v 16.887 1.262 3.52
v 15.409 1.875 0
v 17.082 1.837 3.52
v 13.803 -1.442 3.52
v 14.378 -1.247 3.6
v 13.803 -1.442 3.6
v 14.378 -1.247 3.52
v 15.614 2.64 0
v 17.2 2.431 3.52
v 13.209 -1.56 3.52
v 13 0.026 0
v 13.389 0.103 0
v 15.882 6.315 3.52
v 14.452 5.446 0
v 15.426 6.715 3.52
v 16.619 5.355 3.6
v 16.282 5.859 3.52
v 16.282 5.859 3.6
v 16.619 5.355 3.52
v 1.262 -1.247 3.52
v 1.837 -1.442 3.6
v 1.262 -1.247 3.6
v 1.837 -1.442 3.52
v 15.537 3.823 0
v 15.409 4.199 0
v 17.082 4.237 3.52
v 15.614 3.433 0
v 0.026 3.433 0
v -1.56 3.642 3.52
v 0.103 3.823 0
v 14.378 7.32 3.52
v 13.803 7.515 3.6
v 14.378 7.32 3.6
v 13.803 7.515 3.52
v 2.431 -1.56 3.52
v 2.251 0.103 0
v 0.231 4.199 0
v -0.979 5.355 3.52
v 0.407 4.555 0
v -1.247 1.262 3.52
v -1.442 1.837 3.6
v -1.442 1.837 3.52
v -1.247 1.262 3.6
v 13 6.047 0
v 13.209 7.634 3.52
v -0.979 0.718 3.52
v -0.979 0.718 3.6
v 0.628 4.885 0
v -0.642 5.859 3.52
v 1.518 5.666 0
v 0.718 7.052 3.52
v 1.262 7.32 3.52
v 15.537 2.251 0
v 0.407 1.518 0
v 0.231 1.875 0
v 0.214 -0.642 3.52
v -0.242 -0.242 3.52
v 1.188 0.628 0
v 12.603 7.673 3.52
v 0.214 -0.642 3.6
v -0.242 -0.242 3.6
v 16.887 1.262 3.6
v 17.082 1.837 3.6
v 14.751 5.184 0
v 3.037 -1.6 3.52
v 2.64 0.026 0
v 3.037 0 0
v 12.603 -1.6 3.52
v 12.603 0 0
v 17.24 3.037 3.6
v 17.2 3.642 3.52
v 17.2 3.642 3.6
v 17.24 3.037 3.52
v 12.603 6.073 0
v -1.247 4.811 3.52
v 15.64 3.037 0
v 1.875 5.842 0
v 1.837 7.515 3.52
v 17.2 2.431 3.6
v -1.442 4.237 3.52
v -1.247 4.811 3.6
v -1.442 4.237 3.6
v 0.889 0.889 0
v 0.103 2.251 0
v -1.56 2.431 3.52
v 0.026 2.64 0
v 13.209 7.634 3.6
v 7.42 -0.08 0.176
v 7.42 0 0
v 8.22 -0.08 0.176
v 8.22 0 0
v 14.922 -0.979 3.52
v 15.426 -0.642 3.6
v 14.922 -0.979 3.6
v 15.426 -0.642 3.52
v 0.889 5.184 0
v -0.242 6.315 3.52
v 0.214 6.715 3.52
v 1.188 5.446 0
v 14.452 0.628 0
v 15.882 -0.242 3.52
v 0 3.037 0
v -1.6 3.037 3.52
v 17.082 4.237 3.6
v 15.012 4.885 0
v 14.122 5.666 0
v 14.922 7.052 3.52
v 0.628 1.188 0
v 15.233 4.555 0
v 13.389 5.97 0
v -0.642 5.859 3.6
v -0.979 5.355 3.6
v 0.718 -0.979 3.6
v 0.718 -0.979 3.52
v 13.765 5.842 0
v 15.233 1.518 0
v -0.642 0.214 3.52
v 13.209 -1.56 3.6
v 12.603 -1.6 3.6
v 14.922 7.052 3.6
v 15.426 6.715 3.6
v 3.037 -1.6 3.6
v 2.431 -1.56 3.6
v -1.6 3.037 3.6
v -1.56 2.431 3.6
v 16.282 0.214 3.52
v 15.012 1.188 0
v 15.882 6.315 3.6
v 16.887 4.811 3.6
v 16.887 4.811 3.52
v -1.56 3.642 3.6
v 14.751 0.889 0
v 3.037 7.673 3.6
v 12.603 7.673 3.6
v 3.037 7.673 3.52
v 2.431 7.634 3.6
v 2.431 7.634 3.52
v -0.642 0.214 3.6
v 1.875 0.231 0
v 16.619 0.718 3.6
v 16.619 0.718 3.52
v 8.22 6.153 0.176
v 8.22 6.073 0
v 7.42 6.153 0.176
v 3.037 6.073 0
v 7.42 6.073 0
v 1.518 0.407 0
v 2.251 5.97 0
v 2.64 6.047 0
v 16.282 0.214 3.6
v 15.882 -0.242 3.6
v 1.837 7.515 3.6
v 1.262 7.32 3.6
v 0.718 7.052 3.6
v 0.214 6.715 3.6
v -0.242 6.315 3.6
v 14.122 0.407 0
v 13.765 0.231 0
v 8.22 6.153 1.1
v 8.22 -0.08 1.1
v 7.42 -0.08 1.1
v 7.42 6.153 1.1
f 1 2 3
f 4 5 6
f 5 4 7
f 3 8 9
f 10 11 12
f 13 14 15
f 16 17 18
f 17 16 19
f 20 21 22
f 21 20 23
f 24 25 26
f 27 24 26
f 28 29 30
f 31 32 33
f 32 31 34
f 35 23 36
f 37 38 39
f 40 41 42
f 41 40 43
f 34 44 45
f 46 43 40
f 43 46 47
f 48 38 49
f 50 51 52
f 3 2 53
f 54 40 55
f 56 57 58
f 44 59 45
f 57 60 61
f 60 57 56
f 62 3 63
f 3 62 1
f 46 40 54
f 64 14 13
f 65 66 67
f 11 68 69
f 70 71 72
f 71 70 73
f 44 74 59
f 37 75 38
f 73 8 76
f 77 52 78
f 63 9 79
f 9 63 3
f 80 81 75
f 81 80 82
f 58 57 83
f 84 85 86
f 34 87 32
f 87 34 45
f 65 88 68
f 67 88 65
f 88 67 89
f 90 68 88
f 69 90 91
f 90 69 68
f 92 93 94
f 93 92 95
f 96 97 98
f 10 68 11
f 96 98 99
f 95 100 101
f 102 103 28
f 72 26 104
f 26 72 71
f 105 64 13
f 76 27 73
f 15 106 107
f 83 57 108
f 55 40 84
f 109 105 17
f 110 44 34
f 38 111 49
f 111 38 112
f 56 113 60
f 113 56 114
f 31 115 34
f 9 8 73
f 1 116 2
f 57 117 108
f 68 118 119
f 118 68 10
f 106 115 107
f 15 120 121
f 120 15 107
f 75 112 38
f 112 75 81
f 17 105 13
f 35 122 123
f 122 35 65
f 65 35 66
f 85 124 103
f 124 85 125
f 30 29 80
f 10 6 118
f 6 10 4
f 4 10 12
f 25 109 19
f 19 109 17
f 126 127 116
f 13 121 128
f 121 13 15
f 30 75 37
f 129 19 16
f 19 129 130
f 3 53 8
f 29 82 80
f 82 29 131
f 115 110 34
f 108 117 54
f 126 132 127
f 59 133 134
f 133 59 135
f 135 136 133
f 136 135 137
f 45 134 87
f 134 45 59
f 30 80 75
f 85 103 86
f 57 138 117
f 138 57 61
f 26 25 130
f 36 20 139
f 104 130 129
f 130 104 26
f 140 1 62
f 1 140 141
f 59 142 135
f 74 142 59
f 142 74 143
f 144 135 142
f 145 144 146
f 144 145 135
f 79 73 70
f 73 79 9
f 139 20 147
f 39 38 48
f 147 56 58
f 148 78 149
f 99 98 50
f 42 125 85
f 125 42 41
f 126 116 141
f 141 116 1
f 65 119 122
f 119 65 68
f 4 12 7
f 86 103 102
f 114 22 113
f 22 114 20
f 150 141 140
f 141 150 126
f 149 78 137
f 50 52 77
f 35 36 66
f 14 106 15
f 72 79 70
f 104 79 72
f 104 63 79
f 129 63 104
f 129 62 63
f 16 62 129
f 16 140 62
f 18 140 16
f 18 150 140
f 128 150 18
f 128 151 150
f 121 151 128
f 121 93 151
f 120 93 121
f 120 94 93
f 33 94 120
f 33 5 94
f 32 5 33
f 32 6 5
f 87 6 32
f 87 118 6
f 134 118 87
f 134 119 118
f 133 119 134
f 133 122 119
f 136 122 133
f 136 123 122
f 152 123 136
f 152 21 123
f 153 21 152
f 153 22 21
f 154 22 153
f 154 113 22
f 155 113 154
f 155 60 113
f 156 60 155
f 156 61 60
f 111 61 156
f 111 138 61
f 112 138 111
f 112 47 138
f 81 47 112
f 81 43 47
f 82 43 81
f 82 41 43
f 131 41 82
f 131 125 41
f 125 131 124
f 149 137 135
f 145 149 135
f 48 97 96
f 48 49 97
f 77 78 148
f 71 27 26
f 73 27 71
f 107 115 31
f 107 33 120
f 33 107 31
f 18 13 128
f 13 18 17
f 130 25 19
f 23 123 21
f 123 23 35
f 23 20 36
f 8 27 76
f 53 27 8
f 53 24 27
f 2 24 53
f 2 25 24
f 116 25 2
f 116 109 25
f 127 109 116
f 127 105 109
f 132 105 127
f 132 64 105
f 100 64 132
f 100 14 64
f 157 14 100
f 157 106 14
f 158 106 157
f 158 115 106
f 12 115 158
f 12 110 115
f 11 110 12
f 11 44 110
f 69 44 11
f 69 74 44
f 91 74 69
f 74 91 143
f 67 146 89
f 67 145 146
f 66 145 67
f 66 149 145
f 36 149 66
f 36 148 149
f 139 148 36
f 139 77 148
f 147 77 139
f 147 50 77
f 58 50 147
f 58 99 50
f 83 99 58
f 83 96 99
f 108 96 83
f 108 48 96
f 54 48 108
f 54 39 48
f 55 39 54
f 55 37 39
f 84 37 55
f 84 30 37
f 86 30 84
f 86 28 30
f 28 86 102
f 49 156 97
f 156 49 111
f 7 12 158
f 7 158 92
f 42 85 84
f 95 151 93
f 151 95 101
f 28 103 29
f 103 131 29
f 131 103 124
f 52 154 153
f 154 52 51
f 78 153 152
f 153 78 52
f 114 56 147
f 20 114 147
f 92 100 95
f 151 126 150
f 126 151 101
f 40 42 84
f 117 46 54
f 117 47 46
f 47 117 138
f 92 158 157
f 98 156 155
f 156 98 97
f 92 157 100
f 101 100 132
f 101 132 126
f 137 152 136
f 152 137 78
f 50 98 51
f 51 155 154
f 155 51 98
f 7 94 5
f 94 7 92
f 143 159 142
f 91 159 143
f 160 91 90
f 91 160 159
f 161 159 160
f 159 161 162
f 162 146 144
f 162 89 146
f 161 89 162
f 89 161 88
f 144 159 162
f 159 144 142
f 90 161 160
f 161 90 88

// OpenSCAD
// file: dims.scad
// =============================================================================
// PLACEHOLDER dimensions — Option 1 replace-face stack
// =============================================================================
// ESTIMATED millimetres from refs/flat/DIMENSIONS.md (170 × 72.3, 2.35:1).
// Callipers are UNKNOWN. Every critical size is a guess until the OEM face
// and cluster bay are measured. This is NOT a verified AP1 drop-in.
//
// Origin (OpenSCAD): bottom-left of the module bounding box, Z toward driver.
// DIMENSIONS.md / pygame use top-left percentages — convert with y_from_top().
// =============================================================================

$fn = 48;
eps = 0.08;

// --- locked flat elevation (ESTIMATED mm from DIMENSIONS.md) ----------------
face_w = 170.0;             // ESTIMATED — TODO measure OEM face width
face_h = 72.3;              // ESTIMATED — 170 / 2.35; TODO measure height
face_aspect = 2.35;         // lock; do not invent a new family

step_w_pct = 0.044;         // rectangular side-notch depth
notch_top_pct = 0.58;       // from module top (OEM lock)
notch_bot_pct = 0.72;
arch_rise_pct = 0.28;       // y% = 28 * u² from the module top
arch_steps = 40;

lcd_inset_x_pct = 0.010;    // extra inset inside the notch
lcd_top_pct = 0.055;
lcd_bottom_pct = 0.76;      // just under TEMP / FUEL
lcd_spring_inset_pct = 0.02;
lcd_frame_mm = 1.0;         // PLACEHOLDER — keeps the mask one piece (see outline)

temp_x_pct = 0.075;
temp_y_pct = 0.72;
fuel_x_pct = 0.745;
fuel_y_pct = 0.72;
bar_w_pct = 0.180;
bar_h_pct = 0.030;

speed_x_pct = 0.50;
speed_y_pct = 0.40;

lamp_y_pct = 0.805;         // hardware-strip centre-line
bezel_h_pct = 0.175;
lamp_w_pct = 0.50;          // PLACEHOLDER — telltale pack not callipered
lamp_h_from_bezel = 0.58;

btn_pad_x_pct = 0.018;
rocker_w_pct = 0.092;
trip_w_pct = 0.062;
btn_h_from_bezel = 0.48;
sel_gap_mm = 1.0;           // PLACEHOLDER (UI uses ~10 px on a 1920 canvas)

tach_slots = 10;            // 0..9 placeholder windows
tach_slot_w = 4.2;          // PLACEHOLDER mm
tach_slot_h = 5.5;          // PLACEHOLDER mm
tach_slot_inset = 3.2;      // PLACEHOLDER — inward from outer arch

// --- stack thicknesses (ALL PLACEHOLDER / TODO measure) ---------------------
face_t = 2.0;               // PLACEHOLDER acrylic / printed mask
tray_h = 12.0;              // PLACEHOLDER overall backlight tray
floor_t = 1.6;              // PLACEHOLDER backscreen floor
diffuser_t = 1.2;           // PLACEHOLDER opal sheet (bought, not printed)
wall = 2.0;                 // PLACEHOLDER tray wall
face_pocket_clear = 0.35;   // PLACEHOLDER slip around dropped-in face
lcd_pocket_clear = 0.40;    // PLACEHOLDER
cable_w = 16.0;             // PLACEHOLDER — FPC / tail location UNKNOWN
cable_h = 4.0;              // PLACEHOLDER

align_pin_d = 2.0;          // PLACEHOLDER — holes only; no printed bosses
align_hole_d = 2.3;         // PLACEHOLDER — do not drill the bay from this
align_pin_h = 2.6;          // PLACEHOLDER — unused until a pin is measured
align_boss_d = 4.4;         // PLACEHOLDER — unused (web/tray stay separate)

button_clear = 0.40;        // PLACEHOLDER hole oversize
button_cap_t = 2.4;         // PLACEHOLDER proud cap
button_flange_t = 1.2;      // PLACEHOLDER retention flange
button_flange_extra = 1.6;  // PLACEHOLDER radial flange beyond cap
button_stem_d = 3.0;        // PLACEHOLDER — switch model UNKNOWN
button_stem_h = 5.0;        // PLACEHOLDER — travel / switch height UNKNOWN
rocker_groove_w = 0.80;
rocker_groove_d = 1.10;

stem_well_d = 6.0;          // PLACEHOLDER switch well in the tray
stem_well_h = 7.0;          // PLACEHOLDER

// --- derived (still ESTIMATED; inherit the TODOs above) ---------------------
step_w = face_w * step_w_pct;
arch_rise = face_h * arch_rise_pct;
spring_y = face_h * (1 - arch_rise_pct);
notch_top_y = face_h * (1 - notch_top_pct);
notch_bot_y = face_h * (1 - notch_bot_pct);

lcd_x = step_w + face_w * lcd_inset_x_pct;
lcd_w = face_w - 2 * step_w - 2 * face_w * lcd_inset_x_pct;
lcd_peak_y = face_h * (1 - lcd_top_pct);
lcd_bot_y = face_h * (1 - lcd_bottom_pct);
lcd_spring_y = face_h * (1 - (arch_rise_pct - lcd_spring_inset_pct));

bezel_h = face_h * bezel_h_pct;
btn_h = bezel_h * btn_h_from_bezel;
btn_y_from_top = face_h * lamp_y_pct + (bezel_h - btn_h) / 2;
btn_y = face_h - btn_y_from_top - btn_h;

rocker_x = face_w * btn_pad_x_pct;
rocker_w = face_w * rocker_w_pct;
trip_w = face_w * trip_w_pct;
trip_x = face_w - face_w * btn_pad_x_pct - trip_w;
sel_x = trip_x - trip_w - sel_gap_mm;

lamp_w = face_w * lamp_w_pct;
lamp_h = bezel_h * lamp_h_from_bezel;
lamp_x = (face_w - lamp_w) / 2;
lamp_y_from_top = face_h * lamp_y_pct - lamp_h / 2;
lamp_y = face_h - lamp_y_from_top - lamp_h;

temp_x = face_w * temp_x_pct;
temp_w = face_w * bar_w_pct;
temp_h = face_h * bar_h_pct;
temp_y = face_h * (1 - temp_y_pct - bar_h_pct);

fuel_x = face_w * fuel_x_pct;
fuel_w = temp_w;
fuel_h = temp_h;
fuel_y = temp_y;

face_rebate_z = tray_h - face_t;
diffuser_z = floor_t;

function y_from_top(pct) = face_h * (1 - pct);

function arch_xy(u, x0, x1, y_peak, y_spring) =
    let (
        t = (u + 1) / 2,
        x = x0 + (x1 - x0) * t,
        y = y_peak - (y_peak - y_spring) * u * u
    )
    [x, y];
// file: outline.scad
// =============================================================================
// 2D OEM silhouette + window helpers (replace-face)
// =============================================================================
// Matches refs/flat/DIMENSIONS.md and src/gauge_ui.py hood_outer_points():
// flat bottom, rectangular 58–72% notches, parabola y% = 28 u².
// All sizes still ESTIMATED / PLACEHOLDER — see dims.scad.
// =============================================================================

include <dims.scad>

function arch_points(x0, x1, y_peak, y_spring, n = arch_steps) =
    [for (i = [0 : n])
        let (t = i / n, u = 2 * t - 1)
        [x0 + (x1 - x0) * t, y_peak - (y_peak - y_spring) * u * u]
    ];

// Counter-clockwise from bottom-left. Notch-top is colinear with the inset
// side; kept so the point list matches the pygame lock.
function hood_points() =
    concat(
        [
            [0, 0],
            [face_w, 0],
            [face_w, notch_bot_y],
            [face_w - step_w, notch_bot_y],
            [face_w - step_w, notch_top_y],
            [face_w - step_w, spring_y]
        ],
        arch_points(face_w - step_w, step_w, face_h, spring_y),
        [
            [step_w, spring_y],
            [step_w, notch_top_y],
            [step_w, notch_bot_y],
            [0, notch_bot_y]
        ]
    );

function lcd_points() =
    concat(
        [
            [lcd_x, lcd_bot_y],
            [lcd_x + lcd_w, lcd_bot_y],
            [lcd_x + lcd_w, lcd_spring_y]
        ],
        arch_points(lcd_x + lcd_w, lcd_x, lcd_peak_y, lcd_spring_y),
        [[lcd_x, lcd_spring_y]]
    );

module hood_2d() {
    polygon(hood_points());
}

module lcd_2d() {
    polygon(lcd_points());
}

module lcd_window_2d() {
    // Keep a continuous frame — the raw LCD polygon breaches the hood
    // arch at both springs (lcd_spring sits above hood spring).
    intersection() {
        offset(delta = -lcd_frame_mm)
            hood_2d();
        lcd_2d();
    }
}

module stadium_2d(w, h) {
    r = min(w, h) / 2;
    hull() {
        translate([r, r]) circle(r = r);
        translate([w - r, r]) circle(r = r);
    }
}

module rounded_rect_2d(w, h, r) {
    rr = min(r, w / 2, h / 2);
    hull() {
        translate([rr, rr]) circle(r = rr);
        translate([w - rr, rr]) circle(r = rr);
        translate([rr, h - rr]) circle(r = rr);
        translate([w - rr, h - rr]) circle(r = rr);
    }
}

module tach_slots_2d() {
    // PLACEHOLDER windows along the outer arch (0–9). Not OEM digit geometry.
    x0 = step_w;
    x1 = face_w - step_w;
    for (i = [0 : tach_slots - 1]) {
        t = i / (tach_slots - 1);
        u = (2 * t - 1) * 0.82;     // keep slots off the inset side walls
        p = arch_xy(u, x0, x1, face_h, spring_y);
        translate([p[0] - tach_slot_w / 2, p[1] - tach_slot_h - tach_slot_inset])
            rounded_rect_2d(tach_slot_w, tach_slot_h, 0.6);
    }
}

module lamp_window_2d() {
    translate([lamp_x, lamp_y])
        rounded_rect_2d(lamp_w, lamp_h, 1.2);
}

module button_caps_2d(extra = 0) {
    translate([rocker_x - extra, btn_y - extra])
        stadium_2d(rocker_w + 2 * extra, btn_h + 2 * extra);
    translate([sel_x - extra, btn_y - extra])
        stadium_2d(trip_w + 2 * extra, btn_h + 2 * extra);
    translate([trip_x - extra, btn_y - extra])
        stadium_2d(trip_w + 2 * extra, btn_h + 2 * extra);
}

module temp_bar_2d() {
    translate([temp_x, temp_y])
        rounded_rect_2d(temp_w, temp_h, 0.4);
}

module fuel_bar_2d() {
    translate([fuel_x, fuel_y])
        rounded_rect_2d(fuel_w, fuel_h, 0.4);
}

// Four PLACEHOLDER pins in the bottom bezel (not in the LCD). Fiction until measured.
function align_xy() = [
    [rocker_x + rocker_w + 4.0, 3.2],
    [sel_x - 4.0, 3.2],
    [rocker_x + rocker_w + 4.0, lcd_bot_y - 3.0],
    [sel_x - 4.0, lcd_bot_y - 3.0]
];

module align_holes_2d(d = align_hole_d) {
    for (p = align_xy())
        translate(p) circle(d = d);
}

function stem_xy() = [
    [rocker_x + rocker_w * 0.28, btn_y + btn_h / 2],
    [rocker_x + rocker_w * 0.72, btn_y + btn_h / 2],
    [sel_x + trip_w / 2, btn_y + btn_h / 2],
    [trip_x + trip_w / 2, btn_y + btn_h / 2]
];
// file: parts.scad
// =============================================================================
// 3D printable modules — Option 1 replace-face stack
// =============================================================================
// One module = one solid. Downstream Blender remesh is expected; this file
// stays parametric. Callipers UNKNOWN. Not a verified AP1 drop-in.
//
// Cabin-facing hard parts: PETG or ASA. Do NOT use PLA in the cabin.
// Buttons: TPU 95A or cast silicone — not OEM rubber.
// =============================================================================

include <outline.scad>

module _through(h) {
    translate([0, 0, -eps])
        linear_extrude(h + 2 * eps)
            children();
}

module _cowl_web_2d() {
    // Inset so the web never shares an edge with the tray wall.
    difference() {
        offset(delta = -0.45)
            hood_2d();
        offset(delta = 0.35)
            lcd_window_2d();
        tach_slots_2d();
        offset(delta = 0.4)
            lamp_window_2d();
        button_caps_2d(1.2);
        align_holes_2d(align_hole_d + 0.8);
    }
}

module backlight() {
    // Tray shell only — one difference, no unioned ribs or pins.
    // Outer rim is offset(wall) around the 170×72.3 silhouette: a print wall,
    // NOT a measured bay clip and NOT a claimed AP1 fit.
    cavity_h = face_rebate_z - floor_t - 0.06;

    difference() {
        linear_extrude(tray_h)
            offset(delta = wall)
                hood_2d();

        translate([0, 0, face_rebate_z])
            linear_extrude(face_t + 1)
                offset(delta = face_pocket_clear)
                    hood_2d();

        translate([0, 0, floor_t])
            linear_extrude(cavity_h)
                hood_2d();

        // Switch wells — model UNKNOWN
        for (p = stem_xy())
            translate([p[0], p[1], -eps])
                cylinder(h = stem_well_h + eps, d = stem_well_d);

        // Cable / FPC escape — LOCATION UNKNOWN
        translate([
            face_w / 2 - cable_w / 2,
            -wall - eps,
            floor_t
        ])
            cube([cable_w, wall + 2 * eps, cable_h]);

        _through(tray_h)
            align_holes_2d();
    }
}

module backlight_web() {
    // Separate cowl-band insert. Drops on the tray floor. One extrusion.
    linear_extrude(min(3.8, face_rebate_z - floor_t - 0.5))
        _cowl_web_2d();
}

module acrylic_face() {
    // Mask plate — through-windows only. No back rebates (cleaner remesh).
    // Production: laser acrylic. Print proxy: PETG or ASA.
    difference() {
        linear_extrude(face_t)
            hood_2d();

        _through(face_t)
            lcd_window_2d();
        _through(face_t)
            tach_slots_2d();
        _through(face_t)
            lamp_window_2d();
        _through(face_t)
            button_caps_2d(button_clear);
        _through(face_t)
            align_holes_2d();
    }
}

module _button_solid(w, flange_extra) {
    // Single hull: cap → flange. No stem (switch UNKNOWN — add after measure).
    hull() {
        linear_extrude(eps)
            stadium_2d(w, btn_h);
        translate([0, 0, button_cap_t - eps])
            linear_extrude(eps)
                stadium_2d(w, btn_h);
        translate([
            -flange_extra,
            -flange_extra,
            button_cap_t + button_flange_t - eps
        ])
            linear_extrude(eps)
                stadium_2d(
                    w + 2 * flange_extra,
                    btn_h + 2 * flange_extra
                );
    }
}

module rocker_button() {
    difference() {
        _button_solid(rocker_w, button_flange_extra);
        translate([rocker_w / 2 - rocker_groove_w / 2, -eps, -eps])
            cube([rocker_groove_w, btn_h + 2 * eps, rocker_groove_d + eps]);
    }
}

module oval_button() {
    _button_solid(trip_w, min(button_flange_extra, sel_gap_mm * 0.4));
}

module sel_button() {
    oval_button();
}

module trip_button() {
    oval_button();
}

module rubber_buttons_print() {
    // F5 plate preview only — do not export this as one STL.
    rocker_button();
    translate([rocker_w + 8, 0, 0])
        sel_button();
    translate([rocker_w + 8 + trip_w + 8, 0, 0])
        trip_button();
}

module rubber_buttons_placed() {
    translate([0, 0, button_cap_t * 0.35])
        mirror([0, 0, 1]) {
            translate([rocker_x, btn_y, 0])
                rocker_button();
            translate([sel_x, btn_y, 0])
                sel_button();
            translate([trip_x, btn_y, 0])
                trip_button();
        }
}

module assembly(explode = 0) {
    // F5 preview only. Not a printable mesh.
    color([0.22, 0.22, 0.24])
        backlight();
    color([0.55, 0.52, 0.48])
        translate([0, 0, floor_t + explode * 0.35])
            backlight_web();
    color([0.82, 0.80, 0.74, 0.55])
        translate([0, 0, face_rebate_z + explode])
            acrylic_face();
    color([0.12, 0.12, 0.12])
        translate([0, 0, tray_h + explode * 2])
            rubber_buttons_placed();
}
// main file
// =============================================================================
// PLACEHOLDER — −/+ PUSH CANCEL rocker (Option 1 replace-face)
// =============================================================================
// One solid. Stem omitted (switch UNKNOWN). Callipers UNKNOWN.
// Print in TPU 95A or cast silicone. Do NOT use PLA.
// =============================================================================

include <parts.scad>
rocker_button();
